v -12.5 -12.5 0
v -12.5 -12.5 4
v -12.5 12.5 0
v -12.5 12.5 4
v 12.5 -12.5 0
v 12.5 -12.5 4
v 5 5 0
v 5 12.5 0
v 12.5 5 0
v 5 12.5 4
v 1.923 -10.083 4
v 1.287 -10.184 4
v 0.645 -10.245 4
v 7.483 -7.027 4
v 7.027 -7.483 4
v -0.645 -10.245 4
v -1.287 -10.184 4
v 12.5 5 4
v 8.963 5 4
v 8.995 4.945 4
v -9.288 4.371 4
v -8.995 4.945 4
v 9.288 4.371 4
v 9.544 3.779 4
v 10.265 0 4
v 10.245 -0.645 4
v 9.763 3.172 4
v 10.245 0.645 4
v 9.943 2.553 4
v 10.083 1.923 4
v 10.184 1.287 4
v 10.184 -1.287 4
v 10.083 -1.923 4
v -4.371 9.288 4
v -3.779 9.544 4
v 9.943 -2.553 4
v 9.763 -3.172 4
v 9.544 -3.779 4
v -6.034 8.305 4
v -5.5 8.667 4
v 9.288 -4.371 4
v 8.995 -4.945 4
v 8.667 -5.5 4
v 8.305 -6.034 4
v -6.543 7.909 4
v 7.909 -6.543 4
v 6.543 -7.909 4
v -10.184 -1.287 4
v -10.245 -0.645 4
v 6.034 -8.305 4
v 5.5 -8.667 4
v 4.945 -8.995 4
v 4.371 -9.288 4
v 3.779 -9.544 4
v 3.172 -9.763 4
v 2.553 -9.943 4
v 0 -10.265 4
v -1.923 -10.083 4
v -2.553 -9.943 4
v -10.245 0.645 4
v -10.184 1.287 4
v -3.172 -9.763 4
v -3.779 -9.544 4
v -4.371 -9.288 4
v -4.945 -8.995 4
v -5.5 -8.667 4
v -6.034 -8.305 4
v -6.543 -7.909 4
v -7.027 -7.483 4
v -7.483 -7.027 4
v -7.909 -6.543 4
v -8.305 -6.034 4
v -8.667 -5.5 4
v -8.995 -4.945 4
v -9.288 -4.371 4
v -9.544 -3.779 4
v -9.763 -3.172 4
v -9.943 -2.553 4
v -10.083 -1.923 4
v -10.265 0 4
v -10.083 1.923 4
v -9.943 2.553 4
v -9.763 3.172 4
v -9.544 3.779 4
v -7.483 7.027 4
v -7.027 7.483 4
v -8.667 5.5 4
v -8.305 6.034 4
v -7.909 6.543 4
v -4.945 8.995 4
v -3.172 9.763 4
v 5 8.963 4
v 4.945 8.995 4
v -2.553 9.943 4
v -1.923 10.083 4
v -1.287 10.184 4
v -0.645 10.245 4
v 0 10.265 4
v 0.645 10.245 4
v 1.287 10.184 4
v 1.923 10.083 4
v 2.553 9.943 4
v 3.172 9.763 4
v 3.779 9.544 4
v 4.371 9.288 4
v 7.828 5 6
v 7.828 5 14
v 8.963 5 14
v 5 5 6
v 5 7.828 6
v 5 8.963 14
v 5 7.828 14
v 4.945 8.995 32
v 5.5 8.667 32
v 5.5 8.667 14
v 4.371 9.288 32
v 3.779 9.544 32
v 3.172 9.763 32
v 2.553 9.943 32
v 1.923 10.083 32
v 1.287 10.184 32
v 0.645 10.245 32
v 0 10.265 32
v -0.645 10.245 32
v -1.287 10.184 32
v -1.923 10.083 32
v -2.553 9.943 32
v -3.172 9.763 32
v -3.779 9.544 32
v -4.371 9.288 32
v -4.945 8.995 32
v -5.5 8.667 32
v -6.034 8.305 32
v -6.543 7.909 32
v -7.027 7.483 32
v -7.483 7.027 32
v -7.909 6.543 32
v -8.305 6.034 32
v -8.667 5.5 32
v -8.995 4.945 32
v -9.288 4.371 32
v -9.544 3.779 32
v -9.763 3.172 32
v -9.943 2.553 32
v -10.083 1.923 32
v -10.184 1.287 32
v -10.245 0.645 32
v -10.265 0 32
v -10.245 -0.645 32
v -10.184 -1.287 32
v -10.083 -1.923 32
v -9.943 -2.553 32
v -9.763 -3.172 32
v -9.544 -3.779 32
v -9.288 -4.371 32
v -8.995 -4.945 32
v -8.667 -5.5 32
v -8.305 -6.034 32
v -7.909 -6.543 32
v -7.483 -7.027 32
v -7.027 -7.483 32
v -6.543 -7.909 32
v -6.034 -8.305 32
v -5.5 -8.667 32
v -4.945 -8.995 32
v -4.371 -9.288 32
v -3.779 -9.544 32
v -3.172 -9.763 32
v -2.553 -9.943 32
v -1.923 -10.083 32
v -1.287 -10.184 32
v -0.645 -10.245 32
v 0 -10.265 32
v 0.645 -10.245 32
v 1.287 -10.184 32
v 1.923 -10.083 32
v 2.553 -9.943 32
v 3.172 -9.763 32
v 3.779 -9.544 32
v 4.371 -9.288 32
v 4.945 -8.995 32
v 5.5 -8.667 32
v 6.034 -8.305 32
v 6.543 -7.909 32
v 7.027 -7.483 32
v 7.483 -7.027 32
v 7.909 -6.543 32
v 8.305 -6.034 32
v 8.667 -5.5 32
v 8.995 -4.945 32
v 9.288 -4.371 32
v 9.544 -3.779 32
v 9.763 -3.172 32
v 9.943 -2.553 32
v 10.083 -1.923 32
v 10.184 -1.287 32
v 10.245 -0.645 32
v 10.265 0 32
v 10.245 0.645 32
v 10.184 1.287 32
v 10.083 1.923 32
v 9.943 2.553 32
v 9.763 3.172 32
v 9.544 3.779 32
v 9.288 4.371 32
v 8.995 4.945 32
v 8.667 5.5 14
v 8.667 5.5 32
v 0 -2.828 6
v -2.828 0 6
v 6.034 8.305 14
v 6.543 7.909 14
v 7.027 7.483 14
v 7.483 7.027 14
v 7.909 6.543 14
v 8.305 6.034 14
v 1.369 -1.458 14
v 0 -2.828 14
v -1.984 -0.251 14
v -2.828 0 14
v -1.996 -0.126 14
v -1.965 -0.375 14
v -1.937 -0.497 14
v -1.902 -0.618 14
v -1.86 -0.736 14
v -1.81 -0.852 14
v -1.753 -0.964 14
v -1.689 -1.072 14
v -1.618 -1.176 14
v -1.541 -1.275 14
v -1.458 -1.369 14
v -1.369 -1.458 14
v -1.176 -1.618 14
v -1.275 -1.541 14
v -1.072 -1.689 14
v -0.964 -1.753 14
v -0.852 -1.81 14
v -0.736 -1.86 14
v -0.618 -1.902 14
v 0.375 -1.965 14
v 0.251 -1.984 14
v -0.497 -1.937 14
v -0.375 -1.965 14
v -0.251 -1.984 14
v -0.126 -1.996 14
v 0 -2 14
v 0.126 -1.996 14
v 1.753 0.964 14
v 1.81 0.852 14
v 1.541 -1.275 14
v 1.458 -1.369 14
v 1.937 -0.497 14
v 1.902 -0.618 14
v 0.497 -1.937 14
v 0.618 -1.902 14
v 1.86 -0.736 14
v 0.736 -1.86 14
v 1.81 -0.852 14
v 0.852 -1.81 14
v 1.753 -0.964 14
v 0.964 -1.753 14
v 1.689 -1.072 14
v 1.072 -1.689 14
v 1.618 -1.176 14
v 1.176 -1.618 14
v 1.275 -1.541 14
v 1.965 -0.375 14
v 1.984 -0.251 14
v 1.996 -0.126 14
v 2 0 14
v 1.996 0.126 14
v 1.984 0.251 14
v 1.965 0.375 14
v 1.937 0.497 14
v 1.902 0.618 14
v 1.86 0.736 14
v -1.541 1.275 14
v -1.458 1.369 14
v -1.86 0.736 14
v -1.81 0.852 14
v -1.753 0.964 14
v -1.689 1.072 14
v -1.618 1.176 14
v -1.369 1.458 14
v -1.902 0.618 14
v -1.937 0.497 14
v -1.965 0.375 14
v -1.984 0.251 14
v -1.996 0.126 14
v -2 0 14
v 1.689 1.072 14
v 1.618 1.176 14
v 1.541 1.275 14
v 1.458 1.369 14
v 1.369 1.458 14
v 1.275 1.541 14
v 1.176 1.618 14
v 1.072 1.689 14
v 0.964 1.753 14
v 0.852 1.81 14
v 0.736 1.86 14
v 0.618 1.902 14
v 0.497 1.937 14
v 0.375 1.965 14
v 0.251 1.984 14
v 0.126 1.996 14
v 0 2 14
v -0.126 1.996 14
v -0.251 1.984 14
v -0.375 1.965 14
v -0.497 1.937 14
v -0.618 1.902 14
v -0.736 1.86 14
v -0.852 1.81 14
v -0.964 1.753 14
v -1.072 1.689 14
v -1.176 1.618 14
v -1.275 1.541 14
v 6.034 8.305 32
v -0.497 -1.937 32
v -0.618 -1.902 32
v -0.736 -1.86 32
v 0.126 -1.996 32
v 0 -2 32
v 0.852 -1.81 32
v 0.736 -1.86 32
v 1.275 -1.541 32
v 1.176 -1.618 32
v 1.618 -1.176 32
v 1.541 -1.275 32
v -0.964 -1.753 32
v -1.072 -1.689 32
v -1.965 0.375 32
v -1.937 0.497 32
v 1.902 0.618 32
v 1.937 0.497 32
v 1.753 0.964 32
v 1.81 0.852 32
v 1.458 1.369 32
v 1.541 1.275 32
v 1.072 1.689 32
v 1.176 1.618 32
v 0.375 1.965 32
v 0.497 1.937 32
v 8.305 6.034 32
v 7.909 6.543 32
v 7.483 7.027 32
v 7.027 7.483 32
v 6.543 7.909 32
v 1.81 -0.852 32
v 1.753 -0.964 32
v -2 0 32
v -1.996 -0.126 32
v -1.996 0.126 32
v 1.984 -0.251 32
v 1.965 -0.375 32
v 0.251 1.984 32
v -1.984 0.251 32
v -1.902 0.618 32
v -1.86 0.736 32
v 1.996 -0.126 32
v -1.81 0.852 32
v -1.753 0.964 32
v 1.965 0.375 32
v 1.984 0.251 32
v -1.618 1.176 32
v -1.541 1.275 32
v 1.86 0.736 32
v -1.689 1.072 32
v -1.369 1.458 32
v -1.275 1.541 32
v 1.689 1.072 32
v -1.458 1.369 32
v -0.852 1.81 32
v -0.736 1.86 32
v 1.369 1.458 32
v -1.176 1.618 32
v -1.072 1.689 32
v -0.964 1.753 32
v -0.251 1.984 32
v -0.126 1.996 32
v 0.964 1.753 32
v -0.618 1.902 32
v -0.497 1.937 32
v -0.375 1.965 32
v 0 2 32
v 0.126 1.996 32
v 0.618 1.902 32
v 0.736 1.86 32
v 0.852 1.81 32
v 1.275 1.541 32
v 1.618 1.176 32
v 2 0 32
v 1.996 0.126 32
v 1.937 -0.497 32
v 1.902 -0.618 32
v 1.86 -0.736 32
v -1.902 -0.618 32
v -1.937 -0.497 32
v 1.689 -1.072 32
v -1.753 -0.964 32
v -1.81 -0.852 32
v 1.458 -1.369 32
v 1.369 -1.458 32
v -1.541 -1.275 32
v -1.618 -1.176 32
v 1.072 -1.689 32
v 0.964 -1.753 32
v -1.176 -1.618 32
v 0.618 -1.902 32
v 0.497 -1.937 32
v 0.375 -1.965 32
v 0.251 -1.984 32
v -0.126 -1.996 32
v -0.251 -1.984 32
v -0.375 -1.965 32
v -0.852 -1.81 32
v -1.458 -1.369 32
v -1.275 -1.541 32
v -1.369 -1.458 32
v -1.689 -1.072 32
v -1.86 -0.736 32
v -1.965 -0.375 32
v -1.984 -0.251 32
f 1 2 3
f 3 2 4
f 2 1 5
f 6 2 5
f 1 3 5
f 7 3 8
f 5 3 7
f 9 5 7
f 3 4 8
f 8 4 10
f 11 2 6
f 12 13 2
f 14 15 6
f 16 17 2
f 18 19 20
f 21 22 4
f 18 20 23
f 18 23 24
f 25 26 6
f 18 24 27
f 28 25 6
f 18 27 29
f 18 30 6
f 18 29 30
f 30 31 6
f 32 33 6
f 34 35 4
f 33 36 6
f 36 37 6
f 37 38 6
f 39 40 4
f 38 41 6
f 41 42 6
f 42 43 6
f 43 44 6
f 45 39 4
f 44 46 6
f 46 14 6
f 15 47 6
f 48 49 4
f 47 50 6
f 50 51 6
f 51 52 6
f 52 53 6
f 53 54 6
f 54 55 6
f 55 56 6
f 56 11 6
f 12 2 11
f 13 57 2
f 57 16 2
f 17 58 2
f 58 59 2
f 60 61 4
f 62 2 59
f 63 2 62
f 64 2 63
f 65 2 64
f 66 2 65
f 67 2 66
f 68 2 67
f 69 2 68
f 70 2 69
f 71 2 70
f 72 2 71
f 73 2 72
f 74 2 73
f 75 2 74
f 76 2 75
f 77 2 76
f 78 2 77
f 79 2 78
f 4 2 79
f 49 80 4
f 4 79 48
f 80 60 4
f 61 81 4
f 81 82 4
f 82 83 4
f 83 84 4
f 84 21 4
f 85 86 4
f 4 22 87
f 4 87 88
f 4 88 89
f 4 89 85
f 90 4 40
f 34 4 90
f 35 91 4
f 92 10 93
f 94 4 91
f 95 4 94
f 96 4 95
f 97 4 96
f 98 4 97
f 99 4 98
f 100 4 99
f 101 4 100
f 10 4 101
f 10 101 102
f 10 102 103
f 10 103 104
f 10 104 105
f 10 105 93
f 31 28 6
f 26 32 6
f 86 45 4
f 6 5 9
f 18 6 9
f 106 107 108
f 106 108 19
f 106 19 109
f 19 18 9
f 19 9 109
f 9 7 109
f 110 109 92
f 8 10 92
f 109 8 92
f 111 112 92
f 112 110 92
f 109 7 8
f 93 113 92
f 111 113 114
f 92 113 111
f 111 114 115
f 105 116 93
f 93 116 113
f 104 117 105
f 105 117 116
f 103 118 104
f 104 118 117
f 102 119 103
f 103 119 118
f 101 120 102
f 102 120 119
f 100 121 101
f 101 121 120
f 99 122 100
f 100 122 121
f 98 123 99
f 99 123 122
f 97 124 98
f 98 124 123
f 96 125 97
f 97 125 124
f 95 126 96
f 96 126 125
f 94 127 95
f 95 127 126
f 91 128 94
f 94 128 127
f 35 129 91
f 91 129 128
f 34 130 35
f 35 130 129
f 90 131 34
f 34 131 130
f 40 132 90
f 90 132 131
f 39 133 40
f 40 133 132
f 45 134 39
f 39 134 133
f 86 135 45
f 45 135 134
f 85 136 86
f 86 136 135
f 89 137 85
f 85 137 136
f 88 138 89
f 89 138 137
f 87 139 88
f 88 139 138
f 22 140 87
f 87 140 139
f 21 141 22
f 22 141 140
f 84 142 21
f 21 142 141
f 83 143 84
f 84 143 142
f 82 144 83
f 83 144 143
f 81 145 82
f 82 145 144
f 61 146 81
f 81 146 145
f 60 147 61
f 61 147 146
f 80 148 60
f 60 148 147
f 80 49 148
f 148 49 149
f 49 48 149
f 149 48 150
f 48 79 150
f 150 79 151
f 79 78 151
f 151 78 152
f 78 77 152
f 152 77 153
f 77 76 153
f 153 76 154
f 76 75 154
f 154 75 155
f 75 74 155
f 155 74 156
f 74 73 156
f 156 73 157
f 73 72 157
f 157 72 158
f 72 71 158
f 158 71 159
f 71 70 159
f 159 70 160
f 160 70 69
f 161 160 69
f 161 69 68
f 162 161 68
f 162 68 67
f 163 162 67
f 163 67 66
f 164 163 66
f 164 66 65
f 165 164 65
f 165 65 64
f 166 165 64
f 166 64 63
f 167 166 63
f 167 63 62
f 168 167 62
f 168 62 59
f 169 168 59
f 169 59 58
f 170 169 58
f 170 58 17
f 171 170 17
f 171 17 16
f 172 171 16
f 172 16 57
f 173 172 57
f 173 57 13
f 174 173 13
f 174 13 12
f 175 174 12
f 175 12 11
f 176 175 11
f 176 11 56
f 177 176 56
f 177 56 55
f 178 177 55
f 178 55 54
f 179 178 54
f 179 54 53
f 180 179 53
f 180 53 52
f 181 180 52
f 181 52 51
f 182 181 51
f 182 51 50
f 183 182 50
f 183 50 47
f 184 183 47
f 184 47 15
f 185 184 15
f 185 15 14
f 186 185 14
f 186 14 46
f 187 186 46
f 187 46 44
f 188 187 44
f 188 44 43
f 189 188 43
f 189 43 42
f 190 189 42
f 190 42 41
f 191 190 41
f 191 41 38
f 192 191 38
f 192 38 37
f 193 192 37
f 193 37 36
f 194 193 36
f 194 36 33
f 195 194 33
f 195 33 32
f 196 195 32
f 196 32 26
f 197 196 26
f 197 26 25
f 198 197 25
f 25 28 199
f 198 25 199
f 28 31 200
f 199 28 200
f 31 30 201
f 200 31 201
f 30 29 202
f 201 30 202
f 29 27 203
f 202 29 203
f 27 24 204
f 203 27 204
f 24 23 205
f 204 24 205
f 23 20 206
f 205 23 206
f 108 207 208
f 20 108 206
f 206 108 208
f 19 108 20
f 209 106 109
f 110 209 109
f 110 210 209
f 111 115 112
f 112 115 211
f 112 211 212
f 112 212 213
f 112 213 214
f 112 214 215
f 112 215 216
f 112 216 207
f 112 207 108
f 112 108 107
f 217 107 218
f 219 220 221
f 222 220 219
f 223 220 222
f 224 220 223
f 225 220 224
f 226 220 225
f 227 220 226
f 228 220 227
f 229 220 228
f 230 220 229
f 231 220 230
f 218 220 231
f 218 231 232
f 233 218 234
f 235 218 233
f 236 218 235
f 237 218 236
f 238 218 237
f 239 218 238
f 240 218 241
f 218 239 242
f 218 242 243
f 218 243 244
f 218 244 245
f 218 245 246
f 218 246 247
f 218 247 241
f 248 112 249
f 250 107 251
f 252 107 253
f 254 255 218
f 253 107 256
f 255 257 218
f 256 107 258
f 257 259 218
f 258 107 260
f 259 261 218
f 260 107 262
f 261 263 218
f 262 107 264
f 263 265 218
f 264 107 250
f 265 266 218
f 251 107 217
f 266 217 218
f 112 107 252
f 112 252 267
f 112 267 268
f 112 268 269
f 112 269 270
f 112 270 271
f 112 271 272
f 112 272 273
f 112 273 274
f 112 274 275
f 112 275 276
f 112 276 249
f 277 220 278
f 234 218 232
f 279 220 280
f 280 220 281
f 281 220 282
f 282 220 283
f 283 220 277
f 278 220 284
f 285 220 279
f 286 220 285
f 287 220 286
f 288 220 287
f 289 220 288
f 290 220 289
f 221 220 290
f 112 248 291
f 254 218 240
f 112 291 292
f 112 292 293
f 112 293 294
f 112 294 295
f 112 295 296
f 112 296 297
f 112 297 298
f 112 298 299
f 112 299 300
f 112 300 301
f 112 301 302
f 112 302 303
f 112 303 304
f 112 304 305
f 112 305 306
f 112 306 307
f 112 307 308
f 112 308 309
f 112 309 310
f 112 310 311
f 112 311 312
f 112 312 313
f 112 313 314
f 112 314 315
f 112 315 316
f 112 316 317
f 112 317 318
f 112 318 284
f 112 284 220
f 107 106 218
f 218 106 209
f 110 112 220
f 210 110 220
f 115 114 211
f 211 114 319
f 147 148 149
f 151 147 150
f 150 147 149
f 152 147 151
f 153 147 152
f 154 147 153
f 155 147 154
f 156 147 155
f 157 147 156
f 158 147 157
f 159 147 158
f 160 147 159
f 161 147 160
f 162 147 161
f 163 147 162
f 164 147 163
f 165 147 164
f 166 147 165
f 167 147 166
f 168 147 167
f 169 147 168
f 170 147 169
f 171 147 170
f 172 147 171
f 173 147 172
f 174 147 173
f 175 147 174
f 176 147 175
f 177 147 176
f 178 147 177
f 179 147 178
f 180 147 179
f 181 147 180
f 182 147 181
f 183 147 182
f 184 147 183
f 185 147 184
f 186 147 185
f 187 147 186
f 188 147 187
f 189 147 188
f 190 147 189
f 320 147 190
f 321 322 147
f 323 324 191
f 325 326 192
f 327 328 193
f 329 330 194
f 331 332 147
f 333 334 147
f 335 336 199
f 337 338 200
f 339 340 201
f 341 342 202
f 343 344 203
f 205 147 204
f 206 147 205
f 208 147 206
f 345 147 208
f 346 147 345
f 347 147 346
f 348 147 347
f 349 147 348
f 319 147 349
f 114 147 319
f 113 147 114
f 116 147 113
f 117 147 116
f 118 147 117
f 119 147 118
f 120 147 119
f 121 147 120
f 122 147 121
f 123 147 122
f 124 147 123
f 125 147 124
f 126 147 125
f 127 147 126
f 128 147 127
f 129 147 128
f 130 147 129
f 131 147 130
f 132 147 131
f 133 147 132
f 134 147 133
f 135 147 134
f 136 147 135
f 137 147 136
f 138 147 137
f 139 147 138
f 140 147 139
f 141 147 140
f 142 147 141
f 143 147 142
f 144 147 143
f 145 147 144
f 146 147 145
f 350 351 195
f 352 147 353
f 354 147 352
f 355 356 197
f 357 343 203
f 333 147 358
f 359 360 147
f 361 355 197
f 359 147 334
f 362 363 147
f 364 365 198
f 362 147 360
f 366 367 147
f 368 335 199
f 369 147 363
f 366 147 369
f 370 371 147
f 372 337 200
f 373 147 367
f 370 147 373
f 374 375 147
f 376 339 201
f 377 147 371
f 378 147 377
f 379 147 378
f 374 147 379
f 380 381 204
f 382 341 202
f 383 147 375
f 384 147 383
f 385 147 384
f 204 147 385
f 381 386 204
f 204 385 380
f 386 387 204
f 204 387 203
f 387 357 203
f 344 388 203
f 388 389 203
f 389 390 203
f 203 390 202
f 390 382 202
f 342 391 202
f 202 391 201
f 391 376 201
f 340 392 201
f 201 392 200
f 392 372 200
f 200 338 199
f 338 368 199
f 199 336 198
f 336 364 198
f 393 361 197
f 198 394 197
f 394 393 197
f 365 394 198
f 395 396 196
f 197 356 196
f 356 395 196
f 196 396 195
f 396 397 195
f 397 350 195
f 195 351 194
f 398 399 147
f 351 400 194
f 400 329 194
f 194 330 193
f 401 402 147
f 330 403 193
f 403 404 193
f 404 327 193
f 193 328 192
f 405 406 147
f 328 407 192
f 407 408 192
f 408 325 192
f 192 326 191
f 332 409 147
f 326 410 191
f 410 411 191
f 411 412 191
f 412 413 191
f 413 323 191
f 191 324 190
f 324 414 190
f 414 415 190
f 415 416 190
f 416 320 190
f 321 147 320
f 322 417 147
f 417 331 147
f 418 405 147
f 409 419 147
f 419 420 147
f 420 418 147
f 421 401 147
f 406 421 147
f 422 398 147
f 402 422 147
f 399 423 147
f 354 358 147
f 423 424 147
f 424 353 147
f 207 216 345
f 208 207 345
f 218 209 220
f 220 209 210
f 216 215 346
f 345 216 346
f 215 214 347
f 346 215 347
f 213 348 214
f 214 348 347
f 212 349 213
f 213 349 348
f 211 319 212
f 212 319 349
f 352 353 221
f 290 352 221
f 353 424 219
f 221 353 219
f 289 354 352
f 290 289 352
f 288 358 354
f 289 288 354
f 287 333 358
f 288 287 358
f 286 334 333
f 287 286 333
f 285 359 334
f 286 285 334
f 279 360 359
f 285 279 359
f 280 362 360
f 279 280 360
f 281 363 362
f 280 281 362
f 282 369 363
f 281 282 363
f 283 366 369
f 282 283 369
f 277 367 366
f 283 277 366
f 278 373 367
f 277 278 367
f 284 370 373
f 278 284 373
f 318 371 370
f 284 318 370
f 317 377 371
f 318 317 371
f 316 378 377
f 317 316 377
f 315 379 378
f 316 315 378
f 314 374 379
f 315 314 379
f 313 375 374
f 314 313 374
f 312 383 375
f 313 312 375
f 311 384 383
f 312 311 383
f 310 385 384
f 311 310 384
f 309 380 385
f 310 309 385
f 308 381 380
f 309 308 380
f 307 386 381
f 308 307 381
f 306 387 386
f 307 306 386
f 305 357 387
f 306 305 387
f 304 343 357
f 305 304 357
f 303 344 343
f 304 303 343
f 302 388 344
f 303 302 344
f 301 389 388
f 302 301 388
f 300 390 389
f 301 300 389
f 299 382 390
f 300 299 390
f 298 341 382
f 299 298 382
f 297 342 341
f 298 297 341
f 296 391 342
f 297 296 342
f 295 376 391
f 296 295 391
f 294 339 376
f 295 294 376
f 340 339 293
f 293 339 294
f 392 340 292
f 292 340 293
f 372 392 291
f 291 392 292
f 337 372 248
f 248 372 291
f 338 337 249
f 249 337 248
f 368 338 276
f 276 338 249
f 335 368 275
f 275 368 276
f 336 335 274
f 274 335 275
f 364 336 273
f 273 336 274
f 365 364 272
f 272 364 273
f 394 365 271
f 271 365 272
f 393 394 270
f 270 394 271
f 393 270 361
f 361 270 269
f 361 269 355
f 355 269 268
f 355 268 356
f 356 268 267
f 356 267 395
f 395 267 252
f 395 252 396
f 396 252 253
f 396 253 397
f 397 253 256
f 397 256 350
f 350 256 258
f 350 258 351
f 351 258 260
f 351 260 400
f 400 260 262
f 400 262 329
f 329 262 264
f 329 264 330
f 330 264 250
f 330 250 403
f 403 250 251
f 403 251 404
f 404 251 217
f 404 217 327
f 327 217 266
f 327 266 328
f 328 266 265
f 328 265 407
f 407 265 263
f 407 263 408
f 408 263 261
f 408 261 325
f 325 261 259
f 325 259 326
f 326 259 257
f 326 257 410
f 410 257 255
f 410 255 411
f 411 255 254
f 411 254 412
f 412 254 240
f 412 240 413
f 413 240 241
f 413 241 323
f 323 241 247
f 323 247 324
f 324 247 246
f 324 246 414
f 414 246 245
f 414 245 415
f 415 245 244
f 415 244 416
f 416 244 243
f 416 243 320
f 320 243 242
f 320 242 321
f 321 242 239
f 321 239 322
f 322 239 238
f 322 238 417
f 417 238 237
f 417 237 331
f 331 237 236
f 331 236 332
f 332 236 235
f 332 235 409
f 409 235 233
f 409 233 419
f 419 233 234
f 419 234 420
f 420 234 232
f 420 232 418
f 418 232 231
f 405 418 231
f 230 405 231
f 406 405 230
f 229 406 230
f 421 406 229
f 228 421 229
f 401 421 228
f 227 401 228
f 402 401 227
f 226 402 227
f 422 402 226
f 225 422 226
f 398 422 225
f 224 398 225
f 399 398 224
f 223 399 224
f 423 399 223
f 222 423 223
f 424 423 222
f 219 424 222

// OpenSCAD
difference(){
	union(){
		cylinder(r=20.53/2, h=32, $fn=100);
		translate([0,0,2])
		cube([25,25,4], center=true);
	}
	
	translate([5,5,-1])
	cube([10,10,15]);

	translate([0,0,7])
	cylinder(r=2, h=100, $fn=100);

	rotate(a=-45)
	translate([0,98,10])
	cube([4,200,8], center=true);

}
